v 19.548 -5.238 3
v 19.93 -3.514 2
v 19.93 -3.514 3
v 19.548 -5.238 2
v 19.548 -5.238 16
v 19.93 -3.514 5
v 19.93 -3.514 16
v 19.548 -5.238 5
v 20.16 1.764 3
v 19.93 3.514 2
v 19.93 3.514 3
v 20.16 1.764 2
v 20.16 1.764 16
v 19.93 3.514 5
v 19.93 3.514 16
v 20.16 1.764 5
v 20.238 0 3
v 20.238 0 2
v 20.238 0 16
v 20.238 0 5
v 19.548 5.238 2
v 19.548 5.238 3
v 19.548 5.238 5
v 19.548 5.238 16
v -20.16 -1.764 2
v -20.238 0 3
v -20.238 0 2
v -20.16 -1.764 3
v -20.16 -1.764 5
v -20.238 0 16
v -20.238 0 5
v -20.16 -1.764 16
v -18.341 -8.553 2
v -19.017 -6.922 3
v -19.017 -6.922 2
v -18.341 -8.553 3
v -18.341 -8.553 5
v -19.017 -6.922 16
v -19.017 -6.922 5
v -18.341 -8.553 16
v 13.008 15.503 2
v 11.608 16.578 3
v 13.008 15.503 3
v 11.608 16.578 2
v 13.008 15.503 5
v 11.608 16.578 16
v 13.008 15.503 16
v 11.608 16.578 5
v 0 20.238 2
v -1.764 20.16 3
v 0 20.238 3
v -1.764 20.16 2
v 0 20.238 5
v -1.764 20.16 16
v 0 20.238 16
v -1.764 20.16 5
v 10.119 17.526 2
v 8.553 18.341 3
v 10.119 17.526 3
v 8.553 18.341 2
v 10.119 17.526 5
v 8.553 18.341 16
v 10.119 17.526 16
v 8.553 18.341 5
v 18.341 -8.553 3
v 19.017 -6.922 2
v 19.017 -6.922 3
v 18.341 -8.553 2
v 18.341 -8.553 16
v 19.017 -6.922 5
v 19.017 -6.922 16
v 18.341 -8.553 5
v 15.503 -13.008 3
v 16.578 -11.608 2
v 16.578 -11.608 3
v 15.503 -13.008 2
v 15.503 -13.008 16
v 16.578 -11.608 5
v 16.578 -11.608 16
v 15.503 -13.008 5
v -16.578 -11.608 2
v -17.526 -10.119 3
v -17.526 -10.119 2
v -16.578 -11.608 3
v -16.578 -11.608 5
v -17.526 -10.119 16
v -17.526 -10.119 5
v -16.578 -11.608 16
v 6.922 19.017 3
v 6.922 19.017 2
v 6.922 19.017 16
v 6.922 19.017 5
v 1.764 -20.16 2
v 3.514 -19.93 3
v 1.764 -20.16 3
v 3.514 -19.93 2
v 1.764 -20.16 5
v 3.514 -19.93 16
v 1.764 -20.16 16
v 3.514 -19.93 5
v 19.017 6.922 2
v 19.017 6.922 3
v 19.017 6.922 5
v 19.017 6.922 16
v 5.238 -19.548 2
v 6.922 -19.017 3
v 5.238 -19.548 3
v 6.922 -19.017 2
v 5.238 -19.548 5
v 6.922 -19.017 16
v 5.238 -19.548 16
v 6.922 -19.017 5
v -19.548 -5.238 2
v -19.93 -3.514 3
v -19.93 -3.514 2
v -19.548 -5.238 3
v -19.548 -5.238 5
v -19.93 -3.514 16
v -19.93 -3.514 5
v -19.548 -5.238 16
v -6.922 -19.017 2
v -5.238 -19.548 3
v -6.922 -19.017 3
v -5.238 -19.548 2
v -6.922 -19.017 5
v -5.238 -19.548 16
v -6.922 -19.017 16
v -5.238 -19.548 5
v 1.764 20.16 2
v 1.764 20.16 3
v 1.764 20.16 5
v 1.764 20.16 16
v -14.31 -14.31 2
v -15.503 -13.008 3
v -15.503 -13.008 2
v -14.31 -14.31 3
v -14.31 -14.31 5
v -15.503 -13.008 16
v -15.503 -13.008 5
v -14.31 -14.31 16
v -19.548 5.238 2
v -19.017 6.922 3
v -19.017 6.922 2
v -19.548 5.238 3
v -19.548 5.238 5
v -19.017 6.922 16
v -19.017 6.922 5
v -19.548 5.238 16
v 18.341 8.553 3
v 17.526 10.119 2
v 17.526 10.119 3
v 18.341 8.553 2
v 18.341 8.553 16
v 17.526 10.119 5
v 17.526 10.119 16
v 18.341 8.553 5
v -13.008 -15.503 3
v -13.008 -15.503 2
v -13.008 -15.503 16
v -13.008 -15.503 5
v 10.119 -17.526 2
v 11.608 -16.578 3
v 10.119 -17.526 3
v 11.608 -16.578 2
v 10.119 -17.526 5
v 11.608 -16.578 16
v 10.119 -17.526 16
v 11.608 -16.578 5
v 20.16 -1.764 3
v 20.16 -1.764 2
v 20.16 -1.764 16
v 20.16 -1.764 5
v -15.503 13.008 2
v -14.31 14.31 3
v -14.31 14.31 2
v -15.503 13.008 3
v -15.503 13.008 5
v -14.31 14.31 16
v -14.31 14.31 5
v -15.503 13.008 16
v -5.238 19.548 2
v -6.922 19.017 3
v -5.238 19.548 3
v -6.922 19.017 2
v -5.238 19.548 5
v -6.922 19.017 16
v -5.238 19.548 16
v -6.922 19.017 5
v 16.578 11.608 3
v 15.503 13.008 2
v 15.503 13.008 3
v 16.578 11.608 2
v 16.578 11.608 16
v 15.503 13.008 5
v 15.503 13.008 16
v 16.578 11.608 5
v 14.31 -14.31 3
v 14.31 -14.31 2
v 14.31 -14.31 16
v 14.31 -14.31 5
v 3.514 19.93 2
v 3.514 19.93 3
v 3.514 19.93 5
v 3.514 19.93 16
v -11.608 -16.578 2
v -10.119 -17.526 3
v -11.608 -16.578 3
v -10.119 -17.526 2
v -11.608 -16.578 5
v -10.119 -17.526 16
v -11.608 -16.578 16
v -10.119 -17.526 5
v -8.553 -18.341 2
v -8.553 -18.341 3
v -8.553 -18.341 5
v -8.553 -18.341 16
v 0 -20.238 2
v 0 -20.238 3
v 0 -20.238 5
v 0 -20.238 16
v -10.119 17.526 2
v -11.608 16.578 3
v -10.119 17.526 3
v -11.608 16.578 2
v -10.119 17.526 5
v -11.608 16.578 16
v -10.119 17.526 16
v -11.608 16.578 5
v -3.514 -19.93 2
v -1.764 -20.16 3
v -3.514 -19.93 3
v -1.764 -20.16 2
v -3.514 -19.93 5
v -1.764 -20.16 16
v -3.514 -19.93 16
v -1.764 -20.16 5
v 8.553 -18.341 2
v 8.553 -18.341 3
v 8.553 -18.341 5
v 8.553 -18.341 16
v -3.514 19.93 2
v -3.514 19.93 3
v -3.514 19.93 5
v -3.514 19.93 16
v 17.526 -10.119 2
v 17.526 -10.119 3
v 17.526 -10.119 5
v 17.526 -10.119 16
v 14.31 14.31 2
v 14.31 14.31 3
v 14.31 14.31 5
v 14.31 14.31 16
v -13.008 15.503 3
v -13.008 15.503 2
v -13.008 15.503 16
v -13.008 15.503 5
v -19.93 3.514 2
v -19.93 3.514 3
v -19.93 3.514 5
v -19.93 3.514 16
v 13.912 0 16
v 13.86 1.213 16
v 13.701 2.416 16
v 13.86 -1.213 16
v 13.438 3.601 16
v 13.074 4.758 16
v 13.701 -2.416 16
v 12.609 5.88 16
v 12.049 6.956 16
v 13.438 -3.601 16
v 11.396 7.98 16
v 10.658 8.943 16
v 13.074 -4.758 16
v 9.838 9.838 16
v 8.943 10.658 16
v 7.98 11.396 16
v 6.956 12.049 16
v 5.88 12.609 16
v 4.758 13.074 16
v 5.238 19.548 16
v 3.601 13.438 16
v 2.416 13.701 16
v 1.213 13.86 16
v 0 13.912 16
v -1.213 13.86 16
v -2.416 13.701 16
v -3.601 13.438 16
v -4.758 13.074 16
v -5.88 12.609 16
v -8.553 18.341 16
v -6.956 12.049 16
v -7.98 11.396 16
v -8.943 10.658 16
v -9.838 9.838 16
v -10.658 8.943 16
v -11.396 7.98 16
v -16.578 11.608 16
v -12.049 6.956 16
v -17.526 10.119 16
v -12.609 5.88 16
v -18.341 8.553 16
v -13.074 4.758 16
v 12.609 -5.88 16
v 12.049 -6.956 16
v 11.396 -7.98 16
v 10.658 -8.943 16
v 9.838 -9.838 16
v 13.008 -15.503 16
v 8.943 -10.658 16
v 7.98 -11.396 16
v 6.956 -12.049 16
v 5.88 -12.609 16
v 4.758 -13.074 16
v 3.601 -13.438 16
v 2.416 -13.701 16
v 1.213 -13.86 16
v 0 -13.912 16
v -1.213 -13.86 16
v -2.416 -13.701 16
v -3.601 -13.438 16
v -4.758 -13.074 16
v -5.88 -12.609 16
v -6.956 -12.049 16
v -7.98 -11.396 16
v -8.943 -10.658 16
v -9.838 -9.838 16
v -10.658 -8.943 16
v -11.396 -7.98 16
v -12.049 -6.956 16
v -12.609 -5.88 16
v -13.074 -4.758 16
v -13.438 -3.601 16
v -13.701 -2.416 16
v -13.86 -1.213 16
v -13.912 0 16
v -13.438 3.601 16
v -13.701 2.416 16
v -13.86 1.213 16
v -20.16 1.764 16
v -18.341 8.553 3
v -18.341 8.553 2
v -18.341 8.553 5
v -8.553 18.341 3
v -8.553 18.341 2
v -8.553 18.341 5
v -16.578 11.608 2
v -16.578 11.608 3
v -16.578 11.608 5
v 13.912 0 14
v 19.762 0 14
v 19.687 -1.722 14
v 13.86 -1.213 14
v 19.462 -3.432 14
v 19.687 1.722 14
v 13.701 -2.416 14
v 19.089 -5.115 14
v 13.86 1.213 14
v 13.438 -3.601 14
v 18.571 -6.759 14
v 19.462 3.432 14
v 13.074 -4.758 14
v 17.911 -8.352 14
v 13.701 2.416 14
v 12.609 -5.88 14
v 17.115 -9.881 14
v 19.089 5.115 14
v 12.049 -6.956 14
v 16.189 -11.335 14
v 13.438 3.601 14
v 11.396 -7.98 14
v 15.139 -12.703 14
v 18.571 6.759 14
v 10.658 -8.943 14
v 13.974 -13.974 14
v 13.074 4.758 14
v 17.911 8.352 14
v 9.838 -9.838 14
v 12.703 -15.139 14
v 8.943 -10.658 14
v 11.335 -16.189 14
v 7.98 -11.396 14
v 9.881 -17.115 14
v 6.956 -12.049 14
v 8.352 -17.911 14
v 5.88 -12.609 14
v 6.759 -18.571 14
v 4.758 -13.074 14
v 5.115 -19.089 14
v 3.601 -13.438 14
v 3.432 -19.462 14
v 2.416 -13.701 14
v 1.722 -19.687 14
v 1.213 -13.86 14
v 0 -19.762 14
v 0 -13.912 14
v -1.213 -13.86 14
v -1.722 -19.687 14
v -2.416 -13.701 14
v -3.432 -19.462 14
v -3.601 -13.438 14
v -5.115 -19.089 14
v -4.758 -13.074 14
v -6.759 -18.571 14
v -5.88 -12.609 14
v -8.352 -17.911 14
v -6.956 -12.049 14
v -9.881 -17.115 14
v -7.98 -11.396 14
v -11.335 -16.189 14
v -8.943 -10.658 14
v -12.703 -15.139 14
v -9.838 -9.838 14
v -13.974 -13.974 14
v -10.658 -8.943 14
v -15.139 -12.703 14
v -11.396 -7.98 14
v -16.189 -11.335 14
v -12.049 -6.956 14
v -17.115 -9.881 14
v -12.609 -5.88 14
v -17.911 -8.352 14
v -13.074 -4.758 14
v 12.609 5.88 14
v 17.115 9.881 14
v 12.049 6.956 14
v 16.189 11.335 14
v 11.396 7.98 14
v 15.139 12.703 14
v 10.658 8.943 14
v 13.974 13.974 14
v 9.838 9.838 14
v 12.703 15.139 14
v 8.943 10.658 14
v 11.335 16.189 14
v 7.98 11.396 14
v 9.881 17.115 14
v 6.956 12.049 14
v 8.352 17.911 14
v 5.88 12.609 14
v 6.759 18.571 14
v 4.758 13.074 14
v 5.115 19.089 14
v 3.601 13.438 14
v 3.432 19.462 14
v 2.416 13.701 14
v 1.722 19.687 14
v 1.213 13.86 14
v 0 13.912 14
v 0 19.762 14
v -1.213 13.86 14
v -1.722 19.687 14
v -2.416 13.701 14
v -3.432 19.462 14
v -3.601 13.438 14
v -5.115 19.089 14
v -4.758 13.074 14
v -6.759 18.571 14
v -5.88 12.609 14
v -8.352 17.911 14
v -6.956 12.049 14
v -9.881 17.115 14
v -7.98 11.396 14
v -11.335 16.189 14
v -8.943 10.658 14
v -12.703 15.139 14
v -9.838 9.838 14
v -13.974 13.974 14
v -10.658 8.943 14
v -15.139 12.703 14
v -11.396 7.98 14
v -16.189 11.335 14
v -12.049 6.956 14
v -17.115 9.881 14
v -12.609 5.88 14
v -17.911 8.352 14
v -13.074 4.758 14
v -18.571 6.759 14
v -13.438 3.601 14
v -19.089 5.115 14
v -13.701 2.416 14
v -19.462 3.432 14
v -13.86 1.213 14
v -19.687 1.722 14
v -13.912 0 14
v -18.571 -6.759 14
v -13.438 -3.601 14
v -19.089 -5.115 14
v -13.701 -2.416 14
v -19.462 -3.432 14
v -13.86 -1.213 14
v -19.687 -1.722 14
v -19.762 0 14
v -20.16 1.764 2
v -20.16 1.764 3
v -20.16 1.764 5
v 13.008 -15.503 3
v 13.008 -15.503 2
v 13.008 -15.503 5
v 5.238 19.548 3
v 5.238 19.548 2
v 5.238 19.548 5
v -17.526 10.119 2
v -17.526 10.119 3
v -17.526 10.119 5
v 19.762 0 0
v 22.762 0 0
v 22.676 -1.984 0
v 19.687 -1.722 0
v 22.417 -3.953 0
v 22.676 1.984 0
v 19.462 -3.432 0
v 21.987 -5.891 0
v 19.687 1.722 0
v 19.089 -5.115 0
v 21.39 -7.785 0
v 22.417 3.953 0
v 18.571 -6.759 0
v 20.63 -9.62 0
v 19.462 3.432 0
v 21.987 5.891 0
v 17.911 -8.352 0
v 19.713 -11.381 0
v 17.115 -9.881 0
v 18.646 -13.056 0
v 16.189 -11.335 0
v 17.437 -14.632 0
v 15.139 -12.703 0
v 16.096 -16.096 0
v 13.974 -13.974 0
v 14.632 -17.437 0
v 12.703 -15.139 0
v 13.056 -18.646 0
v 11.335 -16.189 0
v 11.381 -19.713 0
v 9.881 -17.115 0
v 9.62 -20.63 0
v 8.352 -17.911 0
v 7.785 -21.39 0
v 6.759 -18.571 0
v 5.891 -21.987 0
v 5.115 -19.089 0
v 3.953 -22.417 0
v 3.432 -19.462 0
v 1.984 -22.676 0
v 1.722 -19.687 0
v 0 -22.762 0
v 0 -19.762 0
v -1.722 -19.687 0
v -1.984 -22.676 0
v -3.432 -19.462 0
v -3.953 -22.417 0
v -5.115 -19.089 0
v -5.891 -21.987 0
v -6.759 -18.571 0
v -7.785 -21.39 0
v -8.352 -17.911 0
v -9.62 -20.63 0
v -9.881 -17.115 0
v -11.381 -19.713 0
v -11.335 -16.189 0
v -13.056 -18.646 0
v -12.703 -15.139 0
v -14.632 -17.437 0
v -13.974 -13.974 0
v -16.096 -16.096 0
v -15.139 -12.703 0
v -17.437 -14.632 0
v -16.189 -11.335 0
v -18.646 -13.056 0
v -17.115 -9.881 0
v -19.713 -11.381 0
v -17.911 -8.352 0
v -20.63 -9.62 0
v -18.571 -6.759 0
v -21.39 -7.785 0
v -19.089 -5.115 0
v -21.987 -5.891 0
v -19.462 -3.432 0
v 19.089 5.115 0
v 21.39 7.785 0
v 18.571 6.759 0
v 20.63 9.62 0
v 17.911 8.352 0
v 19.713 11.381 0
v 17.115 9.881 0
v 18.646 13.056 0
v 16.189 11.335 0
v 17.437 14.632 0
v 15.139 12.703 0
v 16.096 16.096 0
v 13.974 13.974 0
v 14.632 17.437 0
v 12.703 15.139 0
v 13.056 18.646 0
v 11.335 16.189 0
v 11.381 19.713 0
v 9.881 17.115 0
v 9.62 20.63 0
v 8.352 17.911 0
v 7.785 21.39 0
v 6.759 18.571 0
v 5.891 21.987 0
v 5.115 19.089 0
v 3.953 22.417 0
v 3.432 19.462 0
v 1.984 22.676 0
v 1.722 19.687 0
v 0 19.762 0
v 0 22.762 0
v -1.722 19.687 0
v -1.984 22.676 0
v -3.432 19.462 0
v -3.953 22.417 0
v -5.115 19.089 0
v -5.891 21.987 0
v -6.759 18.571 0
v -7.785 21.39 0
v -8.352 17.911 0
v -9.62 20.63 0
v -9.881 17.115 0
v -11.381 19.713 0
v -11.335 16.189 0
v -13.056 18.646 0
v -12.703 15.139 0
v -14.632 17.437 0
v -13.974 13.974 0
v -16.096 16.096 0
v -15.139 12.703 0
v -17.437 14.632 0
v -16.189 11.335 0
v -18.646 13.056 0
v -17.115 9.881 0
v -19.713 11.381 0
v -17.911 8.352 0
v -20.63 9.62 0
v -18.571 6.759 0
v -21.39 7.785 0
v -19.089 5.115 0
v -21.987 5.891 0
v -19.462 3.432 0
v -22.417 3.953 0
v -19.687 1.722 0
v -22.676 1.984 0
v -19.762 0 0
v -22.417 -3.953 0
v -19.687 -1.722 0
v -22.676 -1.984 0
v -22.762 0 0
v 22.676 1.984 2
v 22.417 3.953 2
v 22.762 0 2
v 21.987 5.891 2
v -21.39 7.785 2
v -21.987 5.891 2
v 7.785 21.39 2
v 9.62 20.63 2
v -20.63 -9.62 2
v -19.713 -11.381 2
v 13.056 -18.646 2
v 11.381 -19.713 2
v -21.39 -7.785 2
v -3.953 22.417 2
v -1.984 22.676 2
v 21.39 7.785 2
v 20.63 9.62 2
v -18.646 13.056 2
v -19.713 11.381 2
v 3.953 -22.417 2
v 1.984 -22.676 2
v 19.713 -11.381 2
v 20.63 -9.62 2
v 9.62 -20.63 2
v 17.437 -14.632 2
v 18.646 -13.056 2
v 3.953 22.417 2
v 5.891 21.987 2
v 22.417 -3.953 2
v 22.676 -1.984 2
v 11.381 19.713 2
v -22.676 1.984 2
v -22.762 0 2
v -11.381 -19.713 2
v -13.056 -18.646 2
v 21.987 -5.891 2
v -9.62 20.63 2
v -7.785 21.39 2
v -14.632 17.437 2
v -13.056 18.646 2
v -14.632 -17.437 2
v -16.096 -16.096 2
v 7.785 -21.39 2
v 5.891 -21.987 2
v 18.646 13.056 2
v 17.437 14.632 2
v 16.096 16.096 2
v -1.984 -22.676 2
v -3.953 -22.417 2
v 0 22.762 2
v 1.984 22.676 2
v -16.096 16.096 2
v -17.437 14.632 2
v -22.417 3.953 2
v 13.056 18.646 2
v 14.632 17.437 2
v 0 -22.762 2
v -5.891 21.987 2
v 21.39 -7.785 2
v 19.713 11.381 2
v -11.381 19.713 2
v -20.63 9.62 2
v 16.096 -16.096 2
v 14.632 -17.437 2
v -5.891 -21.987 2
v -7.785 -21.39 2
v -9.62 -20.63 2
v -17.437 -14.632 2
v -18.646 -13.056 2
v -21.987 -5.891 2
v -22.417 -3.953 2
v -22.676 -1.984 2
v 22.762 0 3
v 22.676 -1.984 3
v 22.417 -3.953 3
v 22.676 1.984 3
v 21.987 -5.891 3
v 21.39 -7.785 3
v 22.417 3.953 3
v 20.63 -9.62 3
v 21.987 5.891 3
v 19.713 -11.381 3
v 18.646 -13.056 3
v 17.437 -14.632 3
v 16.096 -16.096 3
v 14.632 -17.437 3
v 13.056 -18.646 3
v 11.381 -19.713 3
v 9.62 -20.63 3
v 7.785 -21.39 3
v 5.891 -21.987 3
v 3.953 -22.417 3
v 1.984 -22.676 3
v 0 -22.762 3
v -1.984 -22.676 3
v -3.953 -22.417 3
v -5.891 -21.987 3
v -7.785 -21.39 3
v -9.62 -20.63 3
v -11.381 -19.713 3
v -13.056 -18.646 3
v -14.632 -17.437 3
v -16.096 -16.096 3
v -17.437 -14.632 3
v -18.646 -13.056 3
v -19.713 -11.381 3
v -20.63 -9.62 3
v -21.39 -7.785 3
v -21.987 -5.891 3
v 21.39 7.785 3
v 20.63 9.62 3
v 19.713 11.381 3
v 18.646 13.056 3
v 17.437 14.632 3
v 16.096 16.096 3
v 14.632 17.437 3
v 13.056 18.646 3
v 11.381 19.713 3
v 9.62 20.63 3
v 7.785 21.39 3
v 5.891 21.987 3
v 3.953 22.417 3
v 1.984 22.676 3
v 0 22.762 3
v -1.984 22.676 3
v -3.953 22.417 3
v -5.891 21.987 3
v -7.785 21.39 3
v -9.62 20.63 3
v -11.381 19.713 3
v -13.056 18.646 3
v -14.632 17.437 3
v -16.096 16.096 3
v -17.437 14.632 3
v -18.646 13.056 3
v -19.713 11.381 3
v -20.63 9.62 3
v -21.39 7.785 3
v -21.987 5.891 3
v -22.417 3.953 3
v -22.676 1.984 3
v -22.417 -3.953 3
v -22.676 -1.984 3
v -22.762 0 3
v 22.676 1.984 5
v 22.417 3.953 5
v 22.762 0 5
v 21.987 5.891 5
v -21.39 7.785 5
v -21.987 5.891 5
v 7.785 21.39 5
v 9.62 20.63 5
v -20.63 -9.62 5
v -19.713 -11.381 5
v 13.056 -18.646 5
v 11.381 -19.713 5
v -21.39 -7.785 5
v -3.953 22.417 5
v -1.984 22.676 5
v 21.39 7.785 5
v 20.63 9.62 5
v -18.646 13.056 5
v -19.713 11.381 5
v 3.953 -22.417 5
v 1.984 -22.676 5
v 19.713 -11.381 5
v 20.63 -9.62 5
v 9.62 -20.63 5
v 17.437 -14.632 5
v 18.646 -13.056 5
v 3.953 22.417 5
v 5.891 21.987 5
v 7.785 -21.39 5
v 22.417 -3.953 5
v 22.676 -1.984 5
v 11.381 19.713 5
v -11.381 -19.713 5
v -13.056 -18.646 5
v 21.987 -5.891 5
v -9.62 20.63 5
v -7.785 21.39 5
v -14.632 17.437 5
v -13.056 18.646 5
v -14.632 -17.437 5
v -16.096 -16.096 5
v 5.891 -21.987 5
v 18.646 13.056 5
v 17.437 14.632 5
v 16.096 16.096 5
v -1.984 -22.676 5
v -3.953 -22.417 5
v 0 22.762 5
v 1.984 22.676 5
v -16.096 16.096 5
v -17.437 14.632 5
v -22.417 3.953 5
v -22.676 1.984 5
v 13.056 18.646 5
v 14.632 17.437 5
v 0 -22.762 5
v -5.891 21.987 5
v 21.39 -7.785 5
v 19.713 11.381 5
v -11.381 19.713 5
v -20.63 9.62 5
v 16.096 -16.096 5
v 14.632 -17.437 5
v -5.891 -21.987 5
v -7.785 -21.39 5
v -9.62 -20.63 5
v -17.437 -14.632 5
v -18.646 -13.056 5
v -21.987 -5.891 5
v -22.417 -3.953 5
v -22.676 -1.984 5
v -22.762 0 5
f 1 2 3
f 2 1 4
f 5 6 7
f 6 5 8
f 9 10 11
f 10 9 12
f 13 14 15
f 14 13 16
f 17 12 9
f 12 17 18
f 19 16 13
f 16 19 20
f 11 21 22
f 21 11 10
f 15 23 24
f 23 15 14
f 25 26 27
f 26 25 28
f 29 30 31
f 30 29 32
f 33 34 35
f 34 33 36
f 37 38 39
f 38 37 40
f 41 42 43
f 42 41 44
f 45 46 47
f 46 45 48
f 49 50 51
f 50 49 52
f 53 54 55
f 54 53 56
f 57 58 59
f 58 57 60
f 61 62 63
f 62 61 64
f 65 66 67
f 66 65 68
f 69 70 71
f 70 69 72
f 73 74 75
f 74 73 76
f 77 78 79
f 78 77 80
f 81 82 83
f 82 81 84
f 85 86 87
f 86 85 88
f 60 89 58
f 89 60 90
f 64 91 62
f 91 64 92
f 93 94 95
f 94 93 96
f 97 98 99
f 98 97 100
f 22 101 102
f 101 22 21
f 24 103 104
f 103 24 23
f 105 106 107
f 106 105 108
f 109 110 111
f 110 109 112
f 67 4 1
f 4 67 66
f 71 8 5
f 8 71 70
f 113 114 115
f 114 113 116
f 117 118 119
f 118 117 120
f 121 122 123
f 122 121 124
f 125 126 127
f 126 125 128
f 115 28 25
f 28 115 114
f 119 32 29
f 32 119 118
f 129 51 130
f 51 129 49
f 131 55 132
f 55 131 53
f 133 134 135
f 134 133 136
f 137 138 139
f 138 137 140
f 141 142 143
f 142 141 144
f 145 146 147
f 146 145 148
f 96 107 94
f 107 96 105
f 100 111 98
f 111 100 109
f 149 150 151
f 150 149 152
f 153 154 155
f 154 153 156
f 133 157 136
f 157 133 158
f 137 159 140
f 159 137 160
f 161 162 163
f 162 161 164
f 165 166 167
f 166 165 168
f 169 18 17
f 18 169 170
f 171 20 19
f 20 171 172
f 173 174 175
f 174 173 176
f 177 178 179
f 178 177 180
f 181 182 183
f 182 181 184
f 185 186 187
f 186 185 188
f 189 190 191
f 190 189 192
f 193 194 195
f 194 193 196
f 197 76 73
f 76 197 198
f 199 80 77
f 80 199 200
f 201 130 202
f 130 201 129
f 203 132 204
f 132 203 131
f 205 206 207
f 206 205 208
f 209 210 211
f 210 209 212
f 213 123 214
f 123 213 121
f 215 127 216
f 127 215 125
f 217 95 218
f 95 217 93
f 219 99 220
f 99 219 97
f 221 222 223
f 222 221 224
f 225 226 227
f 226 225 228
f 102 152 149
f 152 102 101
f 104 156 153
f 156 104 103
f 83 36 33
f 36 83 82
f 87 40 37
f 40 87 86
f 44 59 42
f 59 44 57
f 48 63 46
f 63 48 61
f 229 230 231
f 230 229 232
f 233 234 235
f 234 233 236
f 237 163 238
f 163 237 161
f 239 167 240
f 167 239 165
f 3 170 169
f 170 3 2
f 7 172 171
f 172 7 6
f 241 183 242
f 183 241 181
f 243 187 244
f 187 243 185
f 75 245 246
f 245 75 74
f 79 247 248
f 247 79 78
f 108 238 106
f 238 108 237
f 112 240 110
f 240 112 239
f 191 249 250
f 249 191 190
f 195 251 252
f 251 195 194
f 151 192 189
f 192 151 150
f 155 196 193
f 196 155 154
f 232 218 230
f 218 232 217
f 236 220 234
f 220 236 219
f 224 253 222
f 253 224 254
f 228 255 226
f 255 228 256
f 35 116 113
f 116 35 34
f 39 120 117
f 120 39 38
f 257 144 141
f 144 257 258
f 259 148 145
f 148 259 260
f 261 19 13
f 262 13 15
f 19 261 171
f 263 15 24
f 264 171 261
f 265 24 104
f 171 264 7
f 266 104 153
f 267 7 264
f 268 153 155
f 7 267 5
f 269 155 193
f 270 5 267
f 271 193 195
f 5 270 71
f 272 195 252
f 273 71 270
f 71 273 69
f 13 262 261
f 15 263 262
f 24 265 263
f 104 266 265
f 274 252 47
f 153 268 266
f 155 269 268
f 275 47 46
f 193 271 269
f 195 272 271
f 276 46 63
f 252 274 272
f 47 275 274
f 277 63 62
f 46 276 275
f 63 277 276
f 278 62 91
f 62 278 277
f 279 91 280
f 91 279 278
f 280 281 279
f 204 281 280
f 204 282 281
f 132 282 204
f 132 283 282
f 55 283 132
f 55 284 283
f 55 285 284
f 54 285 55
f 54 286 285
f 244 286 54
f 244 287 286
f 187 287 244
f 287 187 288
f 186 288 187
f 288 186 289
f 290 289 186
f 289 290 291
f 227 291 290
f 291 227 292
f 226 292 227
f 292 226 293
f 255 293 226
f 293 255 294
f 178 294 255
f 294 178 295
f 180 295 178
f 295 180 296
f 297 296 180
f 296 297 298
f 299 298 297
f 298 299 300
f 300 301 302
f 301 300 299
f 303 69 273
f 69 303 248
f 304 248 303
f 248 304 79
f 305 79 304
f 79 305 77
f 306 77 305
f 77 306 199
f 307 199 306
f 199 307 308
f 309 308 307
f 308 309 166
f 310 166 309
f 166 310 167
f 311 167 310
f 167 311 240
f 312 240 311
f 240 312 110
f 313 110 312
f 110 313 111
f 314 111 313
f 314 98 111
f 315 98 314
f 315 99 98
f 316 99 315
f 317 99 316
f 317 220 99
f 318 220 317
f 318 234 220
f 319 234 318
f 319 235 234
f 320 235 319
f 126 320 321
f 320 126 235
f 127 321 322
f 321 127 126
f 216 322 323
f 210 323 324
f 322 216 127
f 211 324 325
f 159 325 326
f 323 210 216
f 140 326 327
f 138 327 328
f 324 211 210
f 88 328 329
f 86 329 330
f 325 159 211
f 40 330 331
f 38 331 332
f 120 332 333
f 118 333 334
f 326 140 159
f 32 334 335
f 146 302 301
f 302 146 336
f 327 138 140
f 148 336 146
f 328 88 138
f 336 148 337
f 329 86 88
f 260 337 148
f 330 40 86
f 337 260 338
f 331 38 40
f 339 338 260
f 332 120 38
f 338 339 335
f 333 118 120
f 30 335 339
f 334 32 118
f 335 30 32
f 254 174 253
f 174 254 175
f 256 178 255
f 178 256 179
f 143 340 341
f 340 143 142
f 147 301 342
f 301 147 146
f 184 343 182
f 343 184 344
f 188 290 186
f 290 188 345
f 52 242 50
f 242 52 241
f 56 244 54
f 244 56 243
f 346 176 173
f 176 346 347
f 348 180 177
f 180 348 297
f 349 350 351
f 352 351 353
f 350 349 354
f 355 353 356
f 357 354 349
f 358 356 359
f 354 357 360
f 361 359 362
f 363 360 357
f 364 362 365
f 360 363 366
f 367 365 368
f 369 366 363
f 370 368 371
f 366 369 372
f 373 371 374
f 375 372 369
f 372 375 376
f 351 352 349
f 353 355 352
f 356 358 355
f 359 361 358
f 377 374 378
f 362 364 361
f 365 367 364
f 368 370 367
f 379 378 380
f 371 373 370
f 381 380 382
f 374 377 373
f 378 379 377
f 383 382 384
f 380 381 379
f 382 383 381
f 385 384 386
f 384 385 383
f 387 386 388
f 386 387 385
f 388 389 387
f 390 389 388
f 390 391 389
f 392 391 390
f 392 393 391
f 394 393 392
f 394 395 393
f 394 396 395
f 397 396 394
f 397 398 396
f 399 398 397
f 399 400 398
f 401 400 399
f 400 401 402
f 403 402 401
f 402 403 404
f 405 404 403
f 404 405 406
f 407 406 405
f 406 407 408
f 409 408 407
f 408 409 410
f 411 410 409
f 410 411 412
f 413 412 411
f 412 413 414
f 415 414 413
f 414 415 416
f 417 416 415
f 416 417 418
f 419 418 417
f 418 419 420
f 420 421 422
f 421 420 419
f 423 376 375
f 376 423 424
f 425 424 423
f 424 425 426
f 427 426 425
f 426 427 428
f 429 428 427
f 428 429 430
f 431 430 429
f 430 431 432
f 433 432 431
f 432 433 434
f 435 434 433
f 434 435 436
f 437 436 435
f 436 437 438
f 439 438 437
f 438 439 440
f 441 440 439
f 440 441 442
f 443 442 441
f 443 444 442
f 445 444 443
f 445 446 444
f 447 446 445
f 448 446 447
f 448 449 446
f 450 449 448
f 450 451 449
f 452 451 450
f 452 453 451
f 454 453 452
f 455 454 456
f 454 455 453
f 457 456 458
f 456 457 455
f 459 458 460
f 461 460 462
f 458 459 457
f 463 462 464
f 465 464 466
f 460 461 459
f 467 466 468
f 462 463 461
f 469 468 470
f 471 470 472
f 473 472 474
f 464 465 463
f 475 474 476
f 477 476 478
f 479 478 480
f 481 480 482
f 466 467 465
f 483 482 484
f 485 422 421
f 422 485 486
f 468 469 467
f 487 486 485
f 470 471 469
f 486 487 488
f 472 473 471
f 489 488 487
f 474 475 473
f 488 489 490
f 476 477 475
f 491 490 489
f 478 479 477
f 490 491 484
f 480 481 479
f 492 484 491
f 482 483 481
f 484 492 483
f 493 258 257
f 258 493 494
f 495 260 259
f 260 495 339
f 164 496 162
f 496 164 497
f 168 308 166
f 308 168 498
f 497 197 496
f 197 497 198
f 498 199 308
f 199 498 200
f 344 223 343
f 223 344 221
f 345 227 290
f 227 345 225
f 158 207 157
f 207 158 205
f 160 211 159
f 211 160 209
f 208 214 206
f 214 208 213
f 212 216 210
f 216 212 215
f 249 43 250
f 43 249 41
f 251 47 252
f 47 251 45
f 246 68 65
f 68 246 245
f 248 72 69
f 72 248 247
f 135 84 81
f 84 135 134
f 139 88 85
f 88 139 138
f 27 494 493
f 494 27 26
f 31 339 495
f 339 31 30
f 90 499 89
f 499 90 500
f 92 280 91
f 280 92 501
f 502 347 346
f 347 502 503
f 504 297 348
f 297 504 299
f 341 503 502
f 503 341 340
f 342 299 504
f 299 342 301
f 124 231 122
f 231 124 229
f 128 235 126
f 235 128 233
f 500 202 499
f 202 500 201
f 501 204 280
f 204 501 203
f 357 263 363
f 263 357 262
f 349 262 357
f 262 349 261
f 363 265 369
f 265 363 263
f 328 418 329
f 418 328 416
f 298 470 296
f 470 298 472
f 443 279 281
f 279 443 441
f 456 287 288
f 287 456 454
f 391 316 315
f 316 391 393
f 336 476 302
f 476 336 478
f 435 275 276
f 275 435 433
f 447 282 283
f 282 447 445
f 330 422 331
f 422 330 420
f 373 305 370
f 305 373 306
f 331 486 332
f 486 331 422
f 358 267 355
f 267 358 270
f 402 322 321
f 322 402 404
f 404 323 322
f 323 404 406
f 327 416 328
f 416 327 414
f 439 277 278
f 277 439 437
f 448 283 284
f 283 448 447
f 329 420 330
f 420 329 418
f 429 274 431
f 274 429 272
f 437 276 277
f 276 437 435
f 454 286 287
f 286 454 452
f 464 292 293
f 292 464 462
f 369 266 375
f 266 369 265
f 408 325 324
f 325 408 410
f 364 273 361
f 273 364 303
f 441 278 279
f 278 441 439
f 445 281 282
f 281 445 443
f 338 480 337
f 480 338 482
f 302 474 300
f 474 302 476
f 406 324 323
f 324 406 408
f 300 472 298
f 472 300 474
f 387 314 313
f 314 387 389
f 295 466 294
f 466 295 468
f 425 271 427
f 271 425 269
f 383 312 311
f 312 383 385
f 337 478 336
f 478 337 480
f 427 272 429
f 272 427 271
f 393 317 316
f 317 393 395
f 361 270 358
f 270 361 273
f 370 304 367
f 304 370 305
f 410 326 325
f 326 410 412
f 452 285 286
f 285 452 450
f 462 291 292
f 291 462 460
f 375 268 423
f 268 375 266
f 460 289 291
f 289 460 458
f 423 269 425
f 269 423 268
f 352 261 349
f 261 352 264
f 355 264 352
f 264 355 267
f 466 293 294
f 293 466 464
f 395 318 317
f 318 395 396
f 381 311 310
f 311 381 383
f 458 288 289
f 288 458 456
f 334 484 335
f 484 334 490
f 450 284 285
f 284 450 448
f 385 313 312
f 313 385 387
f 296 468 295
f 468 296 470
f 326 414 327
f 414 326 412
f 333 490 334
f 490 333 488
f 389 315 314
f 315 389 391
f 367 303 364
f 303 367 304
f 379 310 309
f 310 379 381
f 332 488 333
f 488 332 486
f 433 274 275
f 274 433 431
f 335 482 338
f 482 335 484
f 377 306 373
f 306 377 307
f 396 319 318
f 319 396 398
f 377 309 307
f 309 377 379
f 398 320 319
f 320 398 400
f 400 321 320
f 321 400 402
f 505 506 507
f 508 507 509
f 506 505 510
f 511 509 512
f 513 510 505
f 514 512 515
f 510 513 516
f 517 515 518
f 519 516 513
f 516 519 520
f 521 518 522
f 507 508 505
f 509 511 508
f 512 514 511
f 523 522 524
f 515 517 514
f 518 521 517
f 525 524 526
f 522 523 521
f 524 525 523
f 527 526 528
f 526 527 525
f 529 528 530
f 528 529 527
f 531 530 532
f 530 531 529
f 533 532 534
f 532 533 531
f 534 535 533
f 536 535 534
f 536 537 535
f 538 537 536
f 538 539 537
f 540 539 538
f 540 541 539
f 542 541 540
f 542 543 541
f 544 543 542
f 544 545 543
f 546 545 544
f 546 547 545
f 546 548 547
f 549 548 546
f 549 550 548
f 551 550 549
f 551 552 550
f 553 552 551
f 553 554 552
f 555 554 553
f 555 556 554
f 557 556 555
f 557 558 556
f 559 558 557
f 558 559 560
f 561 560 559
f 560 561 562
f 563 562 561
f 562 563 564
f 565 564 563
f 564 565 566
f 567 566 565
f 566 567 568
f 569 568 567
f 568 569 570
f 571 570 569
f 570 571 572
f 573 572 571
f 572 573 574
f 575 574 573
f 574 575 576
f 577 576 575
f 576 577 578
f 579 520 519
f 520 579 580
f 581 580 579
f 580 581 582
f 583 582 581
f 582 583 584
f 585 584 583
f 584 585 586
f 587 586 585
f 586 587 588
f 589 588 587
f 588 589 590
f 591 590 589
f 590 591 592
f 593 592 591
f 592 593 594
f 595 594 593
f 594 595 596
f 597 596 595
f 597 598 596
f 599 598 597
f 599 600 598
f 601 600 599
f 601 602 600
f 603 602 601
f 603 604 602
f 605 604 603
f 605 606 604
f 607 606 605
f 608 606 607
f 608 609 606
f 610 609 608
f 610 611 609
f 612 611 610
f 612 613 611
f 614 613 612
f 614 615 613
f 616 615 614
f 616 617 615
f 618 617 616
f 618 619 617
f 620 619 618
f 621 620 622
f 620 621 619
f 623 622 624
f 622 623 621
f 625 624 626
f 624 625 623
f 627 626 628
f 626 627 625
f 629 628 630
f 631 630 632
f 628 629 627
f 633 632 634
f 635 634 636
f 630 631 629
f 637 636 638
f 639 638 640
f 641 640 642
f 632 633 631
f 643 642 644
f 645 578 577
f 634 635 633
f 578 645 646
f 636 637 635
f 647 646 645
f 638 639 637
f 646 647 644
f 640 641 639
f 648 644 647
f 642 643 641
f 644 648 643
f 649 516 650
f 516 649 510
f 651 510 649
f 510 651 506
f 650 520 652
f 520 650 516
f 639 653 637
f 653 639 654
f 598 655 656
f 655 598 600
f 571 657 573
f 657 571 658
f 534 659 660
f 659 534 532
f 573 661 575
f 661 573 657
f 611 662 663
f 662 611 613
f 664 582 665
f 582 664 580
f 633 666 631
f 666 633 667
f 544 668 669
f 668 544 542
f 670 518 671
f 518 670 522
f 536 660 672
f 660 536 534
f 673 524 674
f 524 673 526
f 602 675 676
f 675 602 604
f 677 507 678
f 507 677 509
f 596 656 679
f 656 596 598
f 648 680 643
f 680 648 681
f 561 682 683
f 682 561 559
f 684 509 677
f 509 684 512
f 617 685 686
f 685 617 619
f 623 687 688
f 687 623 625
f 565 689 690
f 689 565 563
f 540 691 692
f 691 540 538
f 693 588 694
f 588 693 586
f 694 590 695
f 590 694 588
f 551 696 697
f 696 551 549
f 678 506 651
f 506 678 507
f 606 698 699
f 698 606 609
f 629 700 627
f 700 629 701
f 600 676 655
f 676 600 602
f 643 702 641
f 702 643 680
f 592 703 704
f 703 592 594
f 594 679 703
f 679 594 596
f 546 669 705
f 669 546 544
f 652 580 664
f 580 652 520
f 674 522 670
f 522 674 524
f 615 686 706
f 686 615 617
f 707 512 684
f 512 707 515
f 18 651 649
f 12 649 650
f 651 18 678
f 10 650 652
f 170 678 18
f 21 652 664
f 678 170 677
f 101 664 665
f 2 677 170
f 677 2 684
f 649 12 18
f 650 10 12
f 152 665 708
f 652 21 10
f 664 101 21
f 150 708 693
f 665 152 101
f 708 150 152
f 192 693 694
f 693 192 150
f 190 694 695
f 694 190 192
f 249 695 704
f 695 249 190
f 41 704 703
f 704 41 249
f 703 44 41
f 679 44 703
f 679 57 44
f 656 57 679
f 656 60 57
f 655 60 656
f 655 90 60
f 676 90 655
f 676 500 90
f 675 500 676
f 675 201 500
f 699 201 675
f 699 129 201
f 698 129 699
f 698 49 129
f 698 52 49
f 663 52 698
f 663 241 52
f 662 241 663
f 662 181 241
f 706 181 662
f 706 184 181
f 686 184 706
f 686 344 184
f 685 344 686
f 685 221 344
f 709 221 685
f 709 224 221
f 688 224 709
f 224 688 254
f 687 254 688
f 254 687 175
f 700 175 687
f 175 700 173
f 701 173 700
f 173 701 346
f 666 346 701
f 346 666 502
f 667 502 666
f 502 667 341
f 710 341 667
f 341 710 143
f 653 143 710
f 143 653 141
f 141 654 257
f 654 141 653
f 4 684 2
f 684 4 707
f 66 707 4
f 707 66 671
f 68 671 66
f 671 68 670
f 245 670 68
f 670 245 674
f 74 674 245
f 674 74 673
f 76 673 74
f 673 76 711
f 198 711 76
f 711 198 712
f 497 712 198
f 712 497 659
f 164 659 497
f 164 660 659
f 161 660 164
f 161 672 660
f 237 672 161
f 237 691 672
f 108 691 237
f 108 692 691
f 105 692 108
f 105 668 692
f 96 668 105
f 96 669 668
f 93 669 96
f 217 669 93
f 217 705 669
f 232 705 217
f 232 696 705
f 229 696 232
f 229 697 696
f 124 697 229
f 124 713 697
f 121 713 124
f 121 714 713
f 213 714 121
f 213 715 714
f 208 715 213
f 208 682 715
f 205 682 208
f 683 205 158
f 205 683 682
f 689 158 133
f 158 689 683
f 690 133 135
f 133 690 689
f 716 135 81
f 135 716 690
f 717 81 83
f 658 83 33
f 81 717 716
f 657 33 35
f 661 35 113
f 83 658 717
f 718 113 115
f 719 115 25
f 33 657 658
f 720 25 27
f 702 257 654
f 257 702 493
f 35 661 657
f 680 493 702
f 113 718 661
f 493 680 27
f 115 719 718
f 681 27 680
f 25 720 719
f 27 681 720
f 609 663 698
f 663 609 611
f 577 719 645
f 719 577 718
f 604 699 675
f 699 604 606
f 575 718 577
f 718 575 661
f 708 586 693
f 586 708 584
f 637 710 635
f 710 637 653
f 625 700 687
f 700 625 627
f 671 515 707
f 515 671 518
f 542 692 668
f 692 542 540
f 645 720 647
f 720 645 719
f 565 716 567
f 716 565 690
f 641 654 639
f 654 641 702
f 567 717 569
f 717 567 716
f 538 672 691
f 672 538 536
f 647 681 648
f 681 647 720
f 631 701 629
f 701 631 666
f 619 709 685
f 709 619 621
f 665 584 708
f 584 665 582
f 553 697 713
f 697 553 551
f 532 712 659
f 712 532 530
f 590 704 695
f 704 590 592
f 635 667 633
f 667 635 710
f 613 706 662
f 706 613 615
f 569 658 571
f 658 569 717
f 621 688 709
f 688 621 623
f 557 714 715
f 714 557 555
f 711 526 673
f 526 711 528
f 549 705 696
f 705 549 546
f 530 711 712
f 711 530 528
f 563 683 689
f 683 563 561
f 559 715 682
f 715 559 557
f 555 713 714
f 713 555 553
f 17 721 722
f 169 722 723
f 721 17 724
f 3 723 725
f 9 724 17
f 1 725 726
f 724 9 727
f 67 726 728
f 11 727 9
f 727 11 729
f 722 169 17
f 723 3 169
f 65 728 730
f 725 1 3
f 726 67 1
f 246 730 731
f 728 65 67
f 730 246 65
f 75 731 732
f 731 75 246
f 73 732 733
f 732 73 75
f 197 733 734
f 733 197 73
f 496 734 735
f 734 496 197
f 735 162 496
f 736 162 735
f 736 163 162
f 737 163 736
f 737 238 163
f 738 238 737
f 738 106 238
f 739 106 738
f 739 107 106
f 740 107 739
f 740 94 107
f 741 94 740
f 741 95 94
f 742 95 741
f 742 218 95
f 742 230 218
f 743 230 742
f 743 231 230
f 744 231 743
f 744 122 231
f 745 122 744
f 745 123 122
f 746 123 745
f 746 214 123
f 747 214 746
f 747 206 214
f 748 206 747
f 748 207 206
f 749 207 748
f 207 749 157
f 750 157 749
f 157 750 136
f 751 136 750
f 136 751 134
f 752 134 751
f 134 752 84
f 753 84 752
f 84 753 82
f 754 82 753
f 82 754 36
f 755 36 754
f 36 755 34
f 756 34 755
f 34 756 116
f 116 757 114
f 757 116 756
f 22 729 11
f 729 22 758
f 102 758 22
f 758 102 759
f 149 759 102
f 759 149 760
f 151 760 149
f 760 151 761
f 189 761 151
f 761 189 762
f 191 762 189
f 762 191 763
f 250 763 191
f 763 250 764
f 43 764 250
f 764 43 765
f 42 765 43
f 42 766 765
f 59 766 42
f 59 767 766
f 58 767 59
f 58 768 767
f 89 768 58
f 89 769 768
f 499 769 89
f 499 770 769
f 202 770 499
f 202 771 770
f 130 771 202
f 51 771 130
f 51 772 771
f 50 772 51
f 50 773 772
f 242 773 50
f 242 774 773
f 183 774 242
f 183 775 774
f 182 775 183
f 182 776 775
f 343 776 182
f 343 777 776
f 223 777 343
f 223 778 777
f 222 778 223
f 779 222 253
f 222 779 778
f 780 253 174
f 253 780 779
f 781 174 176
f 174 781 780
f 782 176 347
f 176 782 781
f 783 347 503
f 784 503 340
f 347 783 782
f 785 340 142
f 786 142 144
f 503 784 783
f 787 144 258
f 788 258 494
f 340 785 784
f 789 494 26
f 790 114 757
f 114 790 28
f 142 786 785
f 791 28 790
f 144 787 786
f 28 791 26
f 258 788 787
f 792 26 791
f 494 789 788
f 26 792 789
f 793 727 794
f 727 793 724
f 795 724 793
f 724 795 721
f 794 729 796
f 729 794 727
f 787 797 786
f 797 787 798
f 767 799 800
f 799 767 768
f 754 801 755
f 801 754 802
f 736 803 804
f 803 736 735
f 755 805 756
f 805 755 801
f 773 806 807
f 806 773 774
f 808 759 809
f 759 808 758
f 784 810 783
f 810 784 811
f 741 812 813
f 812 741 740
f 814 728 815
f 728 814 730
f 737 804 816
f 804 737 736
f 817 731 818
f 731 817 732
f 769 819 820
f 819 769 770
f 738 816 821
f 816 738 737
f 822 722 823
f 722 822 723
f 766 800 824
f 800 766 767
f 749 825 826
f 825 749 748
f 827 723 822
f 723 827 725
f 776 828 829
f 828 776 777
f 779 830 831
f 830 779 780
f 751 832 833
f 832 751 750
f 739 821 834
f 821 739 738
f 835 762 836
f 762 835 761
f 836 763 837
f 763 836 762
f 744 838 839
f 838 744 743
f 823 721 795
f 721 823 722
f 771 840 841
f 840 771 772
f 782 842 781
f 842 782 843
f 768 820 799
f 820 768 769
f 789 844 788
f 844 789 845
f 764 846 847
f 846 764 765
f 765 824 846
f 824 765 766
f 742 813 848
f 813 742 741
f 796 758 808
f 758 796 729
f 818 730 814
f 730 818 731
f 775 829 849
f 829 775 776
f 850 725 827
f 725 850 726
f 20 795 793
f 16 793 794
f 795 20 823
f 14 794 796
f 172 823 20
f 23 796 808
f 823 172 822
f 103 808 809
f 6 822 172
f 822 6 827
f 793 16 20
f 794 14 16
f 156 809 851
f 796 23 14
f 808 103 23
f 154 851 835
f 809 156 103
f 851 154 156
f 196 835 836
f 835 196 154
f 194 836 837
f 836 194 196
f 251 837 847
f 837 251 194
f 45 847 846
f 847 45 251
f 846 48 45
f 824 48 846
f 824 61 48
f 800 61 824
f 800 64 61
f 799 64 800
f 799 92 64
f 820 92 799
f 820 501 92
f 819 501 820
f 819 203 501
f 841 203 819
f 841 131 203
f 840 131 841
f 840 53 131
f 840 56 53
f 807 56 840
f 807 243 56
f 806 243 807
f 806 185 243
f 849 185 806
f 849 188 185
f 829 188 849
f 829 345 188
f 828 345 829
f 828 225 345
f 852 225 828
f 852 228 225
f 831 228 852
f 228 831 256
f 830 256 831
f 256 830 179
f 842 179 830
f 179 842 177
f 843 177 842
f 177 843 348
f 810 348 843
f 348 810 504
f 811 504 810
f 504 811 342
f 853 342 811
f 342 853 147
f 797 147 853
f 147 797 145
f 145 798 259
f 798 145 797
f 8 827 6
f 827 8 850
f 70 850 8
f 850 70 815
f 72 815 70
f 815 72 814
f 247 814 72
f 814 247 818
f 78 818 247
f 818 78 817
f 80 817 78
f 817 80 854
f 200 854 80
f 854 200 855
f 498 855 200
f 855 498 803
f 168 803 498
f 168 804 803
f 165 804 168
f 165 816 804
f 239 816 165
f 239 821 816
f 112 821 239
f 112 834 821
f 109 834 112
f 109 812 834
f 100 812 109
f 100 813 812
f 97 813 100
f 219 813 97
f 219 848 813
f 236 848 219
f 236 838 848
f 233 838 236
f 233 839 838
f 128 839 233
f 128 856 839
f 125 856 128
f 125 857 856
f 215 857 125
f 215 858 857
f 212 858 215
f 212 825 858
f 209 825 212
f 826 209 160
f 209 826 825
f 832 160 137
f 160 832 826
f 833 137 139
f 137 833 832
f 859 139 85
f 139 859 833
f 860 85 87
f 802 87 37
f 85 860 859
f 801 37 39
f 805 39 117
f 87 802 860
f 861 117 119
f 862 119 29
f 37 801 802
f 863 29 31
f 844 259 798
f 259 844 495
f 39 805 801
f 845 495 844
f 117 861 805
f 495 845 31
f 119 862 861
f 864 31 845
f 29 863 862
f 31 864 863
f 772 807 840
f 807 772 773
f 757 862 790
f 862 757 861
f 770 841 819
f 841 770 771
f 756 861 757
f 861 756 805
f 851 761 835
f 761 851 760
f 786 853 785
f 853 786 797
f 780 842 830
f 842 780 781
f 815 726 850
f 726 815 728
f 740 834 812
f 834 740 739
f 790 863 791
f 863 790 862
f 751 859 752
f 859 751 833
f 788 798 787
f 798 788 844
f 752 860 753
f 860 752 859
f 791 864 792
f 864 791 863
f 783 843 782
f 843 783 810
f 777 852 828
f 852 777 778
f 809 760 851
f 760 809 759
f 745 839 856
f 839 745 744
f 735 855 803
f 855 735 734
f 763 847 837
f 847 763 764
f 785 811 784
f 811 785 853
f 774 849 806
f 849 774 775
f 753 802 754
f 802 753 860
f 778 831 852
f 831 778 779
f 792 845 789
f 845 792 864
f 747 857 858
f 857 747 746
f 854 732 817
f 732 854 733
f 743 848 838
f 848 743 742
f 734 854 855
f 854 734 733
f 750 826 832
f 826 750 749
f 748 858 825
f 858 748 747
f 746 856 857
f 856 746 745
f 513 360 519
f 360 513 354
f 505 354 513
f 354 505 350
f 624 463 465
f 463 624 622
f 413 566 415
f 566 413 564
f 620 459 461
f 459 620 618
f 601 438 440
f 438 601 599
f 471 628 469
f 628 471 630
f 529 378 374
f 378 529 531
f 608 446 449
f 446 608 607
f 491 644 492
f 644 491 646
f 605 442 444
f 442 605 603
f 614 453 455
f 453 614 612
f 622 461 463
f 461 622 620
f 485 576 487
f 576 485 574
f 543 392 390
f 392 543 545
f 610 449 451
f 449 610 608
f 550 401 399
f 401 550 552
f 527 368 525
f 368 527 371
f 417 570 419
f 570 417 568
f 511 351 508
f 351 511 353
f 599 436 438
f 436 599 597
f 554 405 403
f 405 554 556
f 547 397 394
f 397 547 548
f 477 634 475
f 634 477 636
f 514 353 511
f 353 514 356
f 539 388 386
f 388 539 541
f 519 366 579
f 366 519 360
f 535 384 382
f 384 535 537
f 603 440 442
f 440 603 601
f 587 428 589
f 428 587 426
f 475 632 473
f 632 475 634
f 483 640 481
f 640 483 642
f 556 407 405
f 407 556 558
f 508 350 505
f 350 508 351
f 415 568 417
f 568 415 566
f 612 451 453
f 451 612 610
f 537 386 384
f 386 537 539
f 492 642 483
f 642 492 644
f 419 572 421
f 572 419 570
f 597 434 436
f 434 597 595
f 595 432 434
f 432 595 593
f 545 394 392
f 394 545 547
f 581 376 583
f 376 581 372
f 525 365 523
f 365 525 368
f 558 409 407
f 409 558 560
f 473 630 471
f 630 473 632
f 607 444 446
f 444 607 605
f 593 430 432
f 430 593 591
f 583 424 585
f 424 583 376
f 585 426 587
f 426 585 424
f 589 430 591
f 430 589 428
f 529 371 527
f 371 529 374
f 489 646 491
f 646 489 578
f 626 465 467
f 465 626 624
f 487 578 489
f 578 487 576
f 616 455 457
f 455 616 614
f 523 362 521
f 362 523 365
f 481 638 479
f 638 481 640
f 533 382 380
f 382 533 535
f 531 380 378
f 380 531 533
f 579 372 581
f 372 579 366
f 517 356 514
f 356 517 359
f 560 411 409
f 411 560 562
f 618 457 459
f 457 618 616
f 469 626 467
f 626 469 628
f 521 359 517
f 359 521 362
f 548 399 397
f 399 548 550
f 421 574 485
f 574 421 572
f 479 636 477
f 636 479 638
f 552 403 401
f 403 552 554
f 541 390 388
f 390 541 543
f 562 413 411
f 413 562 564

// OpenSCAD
sensor_diameter = 39;
sensor_depth = 14;
gasket_diameter = 41;
gasket_width = 1;
gasket_wing_len = 4;
gasket_wing_height = 2;

anti_warp = .15;
filament_thickness = 1.75;

$fa = $preview ? 15 : 5;
$fs = $preview ? 5 : 0.5;

function anti_warp_widen(v) = v + ((filament_thickness * anti_warp) * 2);
function anti_warp_shrink(v) = v - ((filament_thickness * anti_warp) * 2);

difference() {
	union() {
		cylinder(h = sensor_depth, d = anti_warp_shrink(gasket_diameter));
		cylinder(h = gasket_wing_height, d = anti_warp_widen(gasket_diameter + gasket_wing_len));
		translate([0, 0, gasket_wing_height + gasket_width]) cylinder(h = gasket_wing_height, d = anti_warp_widen(gasket_diameter + gasket_wing_len));
		translate([0, 0, sensor_depth]) {
			difference() {
				cylinder(h = gasket_wing_height, d = anti_warp_shrink(gasket_diameter));
				cylinder(h = gasket_wing_height, d = anti_warp_widen(sensor_diameter * .70));
			}
		}
	}
	cylinder(h = sensor_depth, d = anti_warp_widen(sensor_diameter));
}
